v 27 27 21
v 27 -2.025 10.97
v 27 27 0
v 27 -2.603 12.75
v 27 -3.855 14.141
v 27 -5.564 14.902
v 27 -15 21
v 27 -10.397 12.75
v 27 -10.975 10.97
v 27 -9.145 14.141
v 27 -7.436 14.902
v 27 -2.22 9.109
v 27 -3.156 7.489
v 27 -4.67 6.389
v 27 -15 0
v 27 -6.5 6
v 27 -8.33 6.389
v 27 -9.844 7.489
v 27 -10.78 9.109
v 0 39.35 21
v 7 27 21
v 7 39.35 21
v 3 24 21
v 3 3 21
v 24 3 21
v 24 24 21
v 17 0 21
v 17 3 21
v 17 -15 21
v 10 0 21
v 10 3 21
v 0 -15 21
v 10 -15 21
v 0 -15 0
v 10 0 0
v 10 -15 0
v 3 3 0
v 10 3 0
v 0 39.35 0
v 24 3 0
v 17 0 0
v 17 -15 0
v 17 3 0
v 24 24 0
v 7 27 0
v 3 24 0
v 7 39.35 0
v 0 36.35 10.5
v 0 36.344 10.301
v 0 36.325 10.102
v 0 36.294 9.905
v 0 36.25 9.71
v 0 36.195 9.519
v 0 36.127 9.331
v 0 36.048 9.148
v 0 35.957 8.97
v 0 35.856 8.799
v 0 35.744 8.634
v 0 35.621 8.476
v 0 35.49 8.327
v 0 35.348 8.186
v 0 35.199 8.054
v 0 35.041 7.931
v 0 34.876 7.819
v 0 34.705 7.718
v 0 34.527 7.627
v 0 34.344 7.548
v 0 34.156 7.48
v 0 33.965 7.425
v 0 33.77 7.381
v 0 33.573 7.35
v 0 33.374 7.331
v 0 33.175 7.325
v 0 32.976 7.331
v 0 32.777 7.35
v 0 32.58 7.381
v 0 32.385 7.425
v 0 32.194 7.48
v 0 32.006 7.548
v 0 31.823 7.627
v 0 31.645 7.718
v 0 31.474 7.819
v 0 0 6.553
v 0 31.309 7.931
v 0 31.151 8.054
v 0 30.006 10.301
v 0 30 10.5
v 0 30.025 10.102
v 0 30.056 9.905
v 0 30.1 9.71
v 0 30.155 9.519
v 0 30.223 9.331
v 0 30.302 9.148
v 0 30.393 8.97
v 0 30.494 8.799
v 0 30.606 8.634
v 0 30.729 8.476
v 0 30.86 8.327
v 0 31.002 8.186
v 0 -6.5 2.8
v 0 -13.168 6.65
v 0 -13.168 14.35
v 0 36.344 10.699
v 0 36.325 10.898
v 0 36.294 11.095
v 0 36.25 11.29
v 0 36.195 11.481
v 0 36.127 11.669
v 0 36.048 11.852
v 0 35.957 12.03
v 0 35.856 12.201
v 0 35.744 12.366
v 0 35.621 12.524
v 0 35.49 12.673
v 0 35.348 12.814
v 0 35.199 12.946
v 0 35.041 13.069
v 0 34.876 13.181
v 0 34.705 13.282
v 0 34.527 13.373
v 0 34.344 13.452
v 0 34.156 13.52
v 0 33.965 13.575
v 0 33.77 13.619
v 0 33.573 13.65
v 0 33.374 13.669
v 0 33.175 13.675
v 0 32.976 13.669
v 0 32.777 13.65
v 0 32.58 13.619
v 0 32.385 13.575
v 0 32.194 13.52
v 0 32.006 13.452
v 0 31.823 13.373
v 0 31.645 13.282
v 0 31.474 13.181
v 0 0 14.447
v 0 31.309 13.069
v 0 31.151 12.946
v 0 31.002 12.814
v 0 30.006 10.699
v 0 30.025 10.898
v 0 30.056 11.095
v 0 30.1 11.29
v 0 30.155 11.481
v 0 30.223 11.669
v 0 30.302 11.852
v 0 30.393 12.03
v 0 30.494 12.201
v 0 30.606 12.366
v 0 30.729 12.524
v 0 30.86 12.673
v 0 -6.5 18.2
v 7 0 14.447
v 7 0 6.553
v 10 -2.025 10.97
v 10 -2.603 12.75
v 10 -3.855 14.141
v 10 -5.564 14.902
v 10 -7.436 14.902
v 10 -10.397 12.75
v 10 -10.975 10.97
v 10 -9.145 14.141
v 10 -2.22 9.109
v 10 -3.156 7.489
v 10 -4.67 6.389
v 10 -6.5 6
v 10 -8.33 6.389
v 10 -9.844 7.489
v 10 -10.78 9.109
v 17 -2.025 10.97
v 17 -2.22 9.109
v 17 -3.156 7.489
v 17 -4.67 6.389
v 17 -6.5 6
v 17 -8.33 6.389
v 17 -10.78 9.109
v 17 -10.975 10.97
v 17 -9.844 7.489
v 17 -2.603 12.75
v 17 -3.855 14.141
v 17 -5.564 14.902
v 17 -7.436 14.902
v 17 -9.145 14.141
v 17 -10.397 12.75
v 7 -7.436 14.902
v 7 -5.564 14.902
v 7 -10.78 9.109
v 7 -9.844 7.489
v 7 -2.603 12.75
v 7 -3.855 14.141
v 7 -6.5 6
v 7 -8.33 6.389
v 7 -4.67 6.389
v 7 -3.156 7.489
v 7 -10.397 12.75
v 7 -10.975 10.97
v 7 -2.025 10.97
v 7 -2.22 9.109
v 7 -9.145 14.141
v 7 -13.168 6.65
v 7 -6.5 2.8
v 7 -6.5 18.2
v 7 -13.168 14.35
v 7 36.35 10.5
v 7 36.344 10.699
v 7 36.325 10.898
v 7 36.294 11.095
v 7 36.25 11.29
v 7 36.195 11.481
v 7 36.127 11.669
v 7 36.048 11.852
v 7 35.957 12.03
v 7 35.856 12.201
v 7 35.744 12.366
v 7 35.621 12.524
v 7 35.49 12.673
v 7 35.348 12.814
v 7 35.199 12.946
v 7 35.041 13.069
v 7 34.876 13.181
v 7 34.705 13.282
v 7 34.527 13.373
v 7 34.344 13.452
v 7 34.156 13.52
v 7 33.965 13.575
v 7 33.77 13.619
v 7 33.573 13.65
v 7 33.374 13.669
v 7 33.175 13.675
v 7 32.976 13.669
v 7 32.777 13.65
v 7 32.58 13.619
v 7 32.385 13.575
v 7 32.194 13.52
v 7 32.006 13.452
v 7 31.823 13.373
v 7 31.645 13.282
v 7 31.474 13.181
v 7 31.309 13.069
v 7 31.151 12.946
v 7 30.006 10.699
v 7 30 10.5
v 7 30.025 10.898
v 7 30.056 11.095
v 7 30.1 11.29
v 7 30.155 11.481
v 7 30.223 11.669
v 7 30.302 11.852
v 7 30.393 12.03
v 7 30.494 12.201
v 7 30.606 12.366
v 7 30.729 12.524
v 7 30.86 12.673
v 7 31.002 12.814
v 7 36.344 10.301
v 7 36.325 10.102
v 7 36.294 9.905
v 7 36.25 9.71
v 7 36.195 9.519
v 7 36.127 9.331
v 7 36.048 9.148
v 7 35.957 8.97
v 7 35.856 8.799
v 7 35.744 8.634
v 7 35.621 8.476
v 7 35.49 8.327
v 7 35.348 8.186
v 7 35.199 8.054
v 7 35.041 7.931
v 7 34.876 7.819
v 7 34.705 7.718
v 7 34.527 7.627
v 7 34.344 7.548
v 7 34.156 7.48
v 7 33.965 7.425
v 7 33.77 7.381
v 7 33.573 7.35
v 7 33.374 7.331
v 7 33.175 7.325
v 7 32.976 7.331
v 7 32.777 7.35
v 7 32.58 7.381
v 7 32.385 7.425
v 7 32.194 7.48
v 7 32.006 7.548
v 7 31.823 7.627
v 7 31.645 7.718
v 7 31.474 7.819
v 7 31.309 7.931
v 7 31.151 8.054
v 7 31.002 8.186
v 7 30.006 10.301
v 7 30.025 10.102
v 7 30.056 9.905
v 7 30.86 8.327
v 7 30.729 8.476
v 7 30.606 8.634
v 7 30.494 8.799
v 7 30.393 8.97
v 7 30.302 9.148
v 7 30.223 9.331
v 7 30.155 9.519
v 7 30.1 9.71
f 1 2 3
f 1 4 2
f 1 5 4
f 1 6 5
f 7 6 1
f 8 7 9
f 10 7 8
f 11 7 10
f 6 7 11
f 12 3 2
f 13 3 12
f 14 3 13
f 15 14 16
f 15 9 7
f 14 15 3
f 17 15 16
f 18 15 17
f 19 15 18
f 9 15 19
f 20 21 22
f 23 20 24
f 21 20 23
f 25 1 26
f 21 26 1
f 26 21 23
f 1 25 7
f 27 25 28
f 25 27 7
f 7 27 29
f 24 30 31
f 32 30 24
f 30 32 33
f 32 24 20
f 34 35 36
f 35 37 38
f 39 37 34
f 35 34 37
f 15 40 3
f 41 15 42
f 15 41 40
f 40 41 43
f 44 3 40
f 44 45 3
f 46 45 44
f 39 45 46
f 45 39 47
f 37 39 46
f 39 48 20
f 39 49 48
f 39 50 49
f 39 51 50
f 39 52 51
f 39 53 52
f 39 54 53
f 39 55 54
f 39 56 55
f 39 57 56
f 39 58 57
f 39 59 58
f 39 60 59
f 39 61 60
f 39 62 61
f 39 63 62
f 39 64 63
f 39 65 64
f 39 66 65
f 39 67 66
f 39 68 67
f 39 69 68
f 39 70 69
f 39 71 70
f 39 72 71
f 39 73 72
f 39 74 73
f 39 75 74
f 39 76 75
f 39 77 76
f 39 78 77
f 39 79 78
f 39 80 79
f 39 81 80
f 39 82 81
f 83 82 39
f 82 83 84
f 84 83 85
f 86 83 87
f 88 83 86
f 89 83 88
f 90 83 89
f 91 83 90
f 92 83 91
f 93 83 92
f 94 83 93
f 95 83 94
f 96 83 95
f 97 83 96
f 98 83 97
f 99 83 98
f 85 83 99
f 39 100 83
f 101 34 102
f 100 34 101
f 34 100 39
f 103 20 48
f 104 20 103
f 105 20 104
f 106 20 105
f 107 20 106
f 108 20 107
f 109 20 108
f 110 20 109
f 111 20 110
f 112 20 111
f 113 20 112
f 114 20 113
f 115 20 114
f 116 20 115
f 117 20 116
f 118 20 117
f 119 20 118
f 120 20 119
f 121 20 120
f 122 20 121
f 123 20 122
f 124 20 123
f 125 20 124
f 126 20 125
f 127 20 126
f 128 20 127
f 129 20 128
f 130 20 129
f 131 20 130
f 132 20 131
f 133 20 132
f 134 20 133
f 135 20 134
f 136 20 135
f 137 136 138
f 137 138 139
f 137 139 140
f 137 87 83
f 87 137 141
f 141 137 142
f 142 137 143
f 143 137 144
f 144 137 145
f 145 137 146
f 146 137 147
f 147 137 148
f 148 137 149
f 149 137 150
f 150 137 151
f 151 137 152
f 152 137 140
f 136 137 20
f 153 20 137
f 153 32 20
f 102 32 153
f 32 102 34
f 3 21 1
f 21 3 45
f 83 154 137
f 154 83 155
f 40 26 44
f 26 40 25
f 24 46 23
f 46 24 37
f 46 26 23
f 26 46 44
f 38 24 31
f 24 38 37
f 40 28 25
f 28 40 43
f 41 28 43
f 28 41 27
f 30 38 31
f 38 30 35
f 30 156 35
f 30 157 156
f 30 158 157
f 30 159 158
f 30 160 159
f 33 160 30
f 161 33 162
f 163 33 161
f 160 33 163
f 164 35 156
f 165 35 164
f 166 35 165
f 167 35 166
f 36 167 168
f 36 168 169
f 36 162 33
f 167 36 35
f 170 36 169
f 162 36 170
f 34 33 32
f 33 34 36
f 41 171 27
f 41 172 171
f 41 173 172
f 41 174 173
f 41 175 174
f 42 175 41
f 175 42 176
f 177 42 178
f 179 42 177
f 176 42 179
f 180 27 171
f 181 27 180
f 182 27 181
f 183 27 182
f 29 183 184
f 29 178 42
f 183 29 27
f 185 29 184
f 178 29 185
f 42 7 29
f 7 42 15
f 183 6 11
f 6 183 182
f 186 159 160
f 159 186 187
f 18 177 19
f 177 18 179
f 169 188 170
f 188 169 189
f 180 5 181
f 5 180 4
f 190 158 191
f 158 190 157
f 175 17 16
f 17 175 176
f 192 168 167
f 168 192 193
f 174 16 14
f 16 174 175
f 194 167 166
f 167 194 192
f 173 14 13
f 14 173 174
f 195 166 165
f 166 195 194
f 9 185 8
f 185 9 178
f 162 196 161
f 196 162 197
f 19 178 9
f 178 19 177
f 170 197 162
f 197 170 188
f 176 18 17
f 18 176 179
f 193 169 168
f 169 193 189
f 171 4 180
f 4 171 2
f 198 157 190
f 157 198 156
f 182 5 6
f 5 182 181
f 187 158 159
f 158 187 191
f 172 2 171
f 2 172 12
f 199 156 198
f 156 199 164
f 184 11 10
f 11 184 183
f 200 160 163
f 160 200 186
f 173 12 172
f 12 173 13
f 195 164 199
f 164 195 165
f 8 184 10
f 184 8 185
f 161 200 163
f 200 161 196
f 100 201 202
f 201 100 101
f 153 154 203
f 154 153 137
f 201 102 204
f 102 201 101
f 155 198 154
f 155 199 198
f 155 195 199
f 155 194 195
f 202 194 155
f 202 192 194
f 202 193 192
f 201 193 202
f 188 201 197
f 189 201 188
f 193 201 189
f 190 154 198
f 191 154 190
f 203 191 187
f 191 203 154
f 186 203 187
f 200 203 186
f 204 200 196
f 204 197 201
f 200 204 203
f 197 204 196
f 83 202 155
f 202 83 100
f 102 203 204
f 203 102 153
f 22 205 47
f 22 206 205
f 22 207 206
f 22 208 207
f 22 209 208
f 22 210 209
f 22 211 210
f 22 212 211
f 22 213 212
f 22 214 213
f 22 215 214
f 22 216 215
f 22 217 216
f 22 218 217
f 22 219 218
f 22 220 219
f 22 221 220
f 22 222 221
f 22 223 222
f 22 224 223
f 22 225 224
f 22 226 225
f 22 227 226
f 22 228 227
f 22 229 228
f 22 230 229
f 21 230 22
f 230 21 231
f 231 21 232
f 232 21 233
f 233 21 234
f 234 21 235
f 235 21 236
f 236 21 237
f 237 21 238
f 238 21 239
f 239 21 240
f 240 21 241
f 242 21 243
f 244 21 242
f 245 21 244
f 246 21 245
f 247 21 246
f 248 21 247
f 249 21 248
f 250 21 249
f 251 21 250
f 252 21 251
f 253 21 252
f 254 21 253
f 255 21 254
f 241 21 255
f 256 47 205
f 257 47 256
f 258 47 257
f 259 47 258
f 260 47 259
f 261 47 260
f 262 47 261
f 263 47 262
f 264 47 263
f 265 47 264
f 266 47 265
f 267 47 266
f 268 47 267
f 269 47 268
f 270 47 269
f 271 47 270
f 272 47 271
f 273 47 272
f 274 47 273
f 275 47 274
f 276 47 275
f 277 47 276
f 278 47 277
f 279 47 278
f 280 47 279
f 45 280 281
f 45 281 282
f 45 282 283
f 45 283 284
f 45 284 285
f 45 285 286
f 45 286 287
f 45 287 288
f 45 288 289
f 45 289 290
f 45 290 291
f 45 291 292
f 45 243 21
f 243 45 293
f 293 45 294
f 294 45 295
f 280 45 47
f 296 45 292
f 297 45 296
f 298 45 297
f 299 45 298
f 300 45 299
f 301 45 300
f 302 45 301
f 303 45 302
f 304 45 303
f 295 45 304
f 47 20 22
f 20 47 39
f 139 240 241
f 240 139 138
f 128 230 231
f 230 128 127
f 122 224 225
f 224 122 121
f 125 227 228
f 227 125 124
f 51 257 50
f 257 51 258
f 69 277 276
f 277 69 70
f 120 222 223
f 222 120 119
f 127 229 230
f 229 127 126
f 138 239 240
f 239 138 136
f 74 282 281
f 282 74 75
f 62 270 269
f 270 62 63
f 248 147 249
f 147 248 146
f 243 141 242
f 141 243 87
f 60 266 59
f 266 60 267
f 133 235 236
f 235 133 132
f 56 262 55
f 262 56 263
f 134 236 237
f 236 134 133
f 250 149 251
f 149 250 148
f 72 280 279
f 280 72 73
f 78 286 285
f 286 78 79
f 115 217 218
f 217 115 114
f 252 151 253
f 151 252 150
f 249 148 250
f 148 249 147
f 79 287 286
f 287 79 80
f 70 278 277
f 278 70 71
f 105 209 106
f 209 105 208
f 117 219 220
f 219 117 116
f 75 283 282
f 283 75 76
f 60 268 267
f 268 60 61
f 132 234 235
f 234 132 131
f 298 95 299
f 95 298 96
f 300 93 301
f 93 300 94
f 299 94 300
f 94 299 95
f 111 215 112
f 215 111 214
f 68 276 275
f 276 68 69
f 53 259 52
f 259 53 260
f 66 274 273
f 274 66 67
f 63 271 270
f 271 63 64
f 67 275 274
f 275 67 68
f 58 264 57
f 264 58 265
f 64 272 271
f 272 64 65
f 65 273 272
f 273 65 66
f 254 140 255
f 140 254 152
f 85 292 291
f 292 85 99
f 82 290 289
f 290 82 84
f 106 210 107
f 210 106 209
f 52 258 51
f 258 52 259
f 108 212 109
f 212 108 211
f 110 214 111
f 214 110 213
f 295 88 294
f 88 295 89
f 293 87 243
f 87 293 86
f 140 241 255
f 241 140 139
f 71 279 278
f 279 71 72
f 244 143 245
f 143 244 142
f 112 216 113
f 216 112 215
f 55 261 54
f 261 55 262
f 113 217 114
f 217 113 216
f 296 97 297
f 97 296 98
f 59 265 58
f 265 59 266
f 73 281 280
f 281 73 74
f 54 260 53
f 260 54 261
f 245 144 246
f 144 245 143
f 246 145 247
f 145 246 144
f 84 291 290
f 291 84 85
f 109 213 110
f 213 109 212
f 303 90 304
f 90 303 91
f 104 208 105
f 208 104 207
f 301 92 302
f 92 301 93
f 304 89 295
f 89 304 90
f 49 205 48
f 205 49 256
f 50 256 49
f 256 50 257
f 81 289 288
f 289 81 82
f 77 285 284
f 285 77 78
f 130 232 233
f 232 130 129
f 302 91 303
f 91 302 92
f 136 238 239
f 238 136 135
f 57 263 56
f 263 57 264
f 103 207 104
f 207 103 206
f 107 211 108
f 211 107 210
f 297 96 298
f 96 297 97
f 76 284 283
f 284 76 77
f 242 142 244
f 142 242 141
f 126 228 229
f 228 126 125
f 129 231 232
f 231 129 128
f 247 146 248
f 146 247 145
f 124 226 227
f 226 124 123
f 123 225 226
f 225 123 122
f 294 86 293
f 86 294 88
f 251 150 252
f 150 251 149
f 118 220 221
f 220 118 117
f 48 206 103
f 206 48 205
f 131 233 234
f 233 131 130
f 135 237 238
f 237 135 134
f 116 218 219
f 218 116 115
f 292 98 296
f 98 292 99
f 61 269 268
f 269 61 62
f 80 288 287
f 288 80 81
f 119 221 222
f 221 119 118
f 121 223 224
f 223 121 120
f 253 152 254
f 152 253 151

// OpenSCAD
/*
    created 31 Jan 2021
    by Matt Jones (Crazy-Logic)  
    This example code is in the public domain.
    
    This is for clamping to a 20mm t-slot extrusion, using a 35mm M8 bolt and wing nut/leaver. 
*/

$d = 21;
UNCboltholeradius = 3.175;
UNCboltheadheight = 7;



difference(){
    cube([$d+6,$d+6,$d]);
    translate([3,3,0])
    cube([$d,$d,$d]);
    translate([10,0,0])
    cube([$d-20+6,3,$d]);
}


difference(){
    union(){
    translate([0,-15,0])
    cube([10,15,$d]);
    translate([$d-10+6,-15,0])
    cube([10,15,$d]);
    }
    
    translate([0,-6.5,$d/2])
    rotate([0,90,0])
    cylinder(h=$d+6, r=4.5);
    
    translate([0,-6.5,$d/2])
    rotate([0,90,0])
    cylinder(h=7, r=7.7, $fn=6);
}

//adding a section for the UNC camera bolt. 
difference(){
translate([0,$d+6,0])
    cube([UNCboltheadheight,2*(UNCboltholeradius+3),$d]); 
translate([-1,$d+6+3+UNCboltholeradius,$d/2])
    rotate([0,90,0])
    cylinder(h=UNCboltheadheight+2, r=UNCboltholeradius, center=false,$fn=100);
}
